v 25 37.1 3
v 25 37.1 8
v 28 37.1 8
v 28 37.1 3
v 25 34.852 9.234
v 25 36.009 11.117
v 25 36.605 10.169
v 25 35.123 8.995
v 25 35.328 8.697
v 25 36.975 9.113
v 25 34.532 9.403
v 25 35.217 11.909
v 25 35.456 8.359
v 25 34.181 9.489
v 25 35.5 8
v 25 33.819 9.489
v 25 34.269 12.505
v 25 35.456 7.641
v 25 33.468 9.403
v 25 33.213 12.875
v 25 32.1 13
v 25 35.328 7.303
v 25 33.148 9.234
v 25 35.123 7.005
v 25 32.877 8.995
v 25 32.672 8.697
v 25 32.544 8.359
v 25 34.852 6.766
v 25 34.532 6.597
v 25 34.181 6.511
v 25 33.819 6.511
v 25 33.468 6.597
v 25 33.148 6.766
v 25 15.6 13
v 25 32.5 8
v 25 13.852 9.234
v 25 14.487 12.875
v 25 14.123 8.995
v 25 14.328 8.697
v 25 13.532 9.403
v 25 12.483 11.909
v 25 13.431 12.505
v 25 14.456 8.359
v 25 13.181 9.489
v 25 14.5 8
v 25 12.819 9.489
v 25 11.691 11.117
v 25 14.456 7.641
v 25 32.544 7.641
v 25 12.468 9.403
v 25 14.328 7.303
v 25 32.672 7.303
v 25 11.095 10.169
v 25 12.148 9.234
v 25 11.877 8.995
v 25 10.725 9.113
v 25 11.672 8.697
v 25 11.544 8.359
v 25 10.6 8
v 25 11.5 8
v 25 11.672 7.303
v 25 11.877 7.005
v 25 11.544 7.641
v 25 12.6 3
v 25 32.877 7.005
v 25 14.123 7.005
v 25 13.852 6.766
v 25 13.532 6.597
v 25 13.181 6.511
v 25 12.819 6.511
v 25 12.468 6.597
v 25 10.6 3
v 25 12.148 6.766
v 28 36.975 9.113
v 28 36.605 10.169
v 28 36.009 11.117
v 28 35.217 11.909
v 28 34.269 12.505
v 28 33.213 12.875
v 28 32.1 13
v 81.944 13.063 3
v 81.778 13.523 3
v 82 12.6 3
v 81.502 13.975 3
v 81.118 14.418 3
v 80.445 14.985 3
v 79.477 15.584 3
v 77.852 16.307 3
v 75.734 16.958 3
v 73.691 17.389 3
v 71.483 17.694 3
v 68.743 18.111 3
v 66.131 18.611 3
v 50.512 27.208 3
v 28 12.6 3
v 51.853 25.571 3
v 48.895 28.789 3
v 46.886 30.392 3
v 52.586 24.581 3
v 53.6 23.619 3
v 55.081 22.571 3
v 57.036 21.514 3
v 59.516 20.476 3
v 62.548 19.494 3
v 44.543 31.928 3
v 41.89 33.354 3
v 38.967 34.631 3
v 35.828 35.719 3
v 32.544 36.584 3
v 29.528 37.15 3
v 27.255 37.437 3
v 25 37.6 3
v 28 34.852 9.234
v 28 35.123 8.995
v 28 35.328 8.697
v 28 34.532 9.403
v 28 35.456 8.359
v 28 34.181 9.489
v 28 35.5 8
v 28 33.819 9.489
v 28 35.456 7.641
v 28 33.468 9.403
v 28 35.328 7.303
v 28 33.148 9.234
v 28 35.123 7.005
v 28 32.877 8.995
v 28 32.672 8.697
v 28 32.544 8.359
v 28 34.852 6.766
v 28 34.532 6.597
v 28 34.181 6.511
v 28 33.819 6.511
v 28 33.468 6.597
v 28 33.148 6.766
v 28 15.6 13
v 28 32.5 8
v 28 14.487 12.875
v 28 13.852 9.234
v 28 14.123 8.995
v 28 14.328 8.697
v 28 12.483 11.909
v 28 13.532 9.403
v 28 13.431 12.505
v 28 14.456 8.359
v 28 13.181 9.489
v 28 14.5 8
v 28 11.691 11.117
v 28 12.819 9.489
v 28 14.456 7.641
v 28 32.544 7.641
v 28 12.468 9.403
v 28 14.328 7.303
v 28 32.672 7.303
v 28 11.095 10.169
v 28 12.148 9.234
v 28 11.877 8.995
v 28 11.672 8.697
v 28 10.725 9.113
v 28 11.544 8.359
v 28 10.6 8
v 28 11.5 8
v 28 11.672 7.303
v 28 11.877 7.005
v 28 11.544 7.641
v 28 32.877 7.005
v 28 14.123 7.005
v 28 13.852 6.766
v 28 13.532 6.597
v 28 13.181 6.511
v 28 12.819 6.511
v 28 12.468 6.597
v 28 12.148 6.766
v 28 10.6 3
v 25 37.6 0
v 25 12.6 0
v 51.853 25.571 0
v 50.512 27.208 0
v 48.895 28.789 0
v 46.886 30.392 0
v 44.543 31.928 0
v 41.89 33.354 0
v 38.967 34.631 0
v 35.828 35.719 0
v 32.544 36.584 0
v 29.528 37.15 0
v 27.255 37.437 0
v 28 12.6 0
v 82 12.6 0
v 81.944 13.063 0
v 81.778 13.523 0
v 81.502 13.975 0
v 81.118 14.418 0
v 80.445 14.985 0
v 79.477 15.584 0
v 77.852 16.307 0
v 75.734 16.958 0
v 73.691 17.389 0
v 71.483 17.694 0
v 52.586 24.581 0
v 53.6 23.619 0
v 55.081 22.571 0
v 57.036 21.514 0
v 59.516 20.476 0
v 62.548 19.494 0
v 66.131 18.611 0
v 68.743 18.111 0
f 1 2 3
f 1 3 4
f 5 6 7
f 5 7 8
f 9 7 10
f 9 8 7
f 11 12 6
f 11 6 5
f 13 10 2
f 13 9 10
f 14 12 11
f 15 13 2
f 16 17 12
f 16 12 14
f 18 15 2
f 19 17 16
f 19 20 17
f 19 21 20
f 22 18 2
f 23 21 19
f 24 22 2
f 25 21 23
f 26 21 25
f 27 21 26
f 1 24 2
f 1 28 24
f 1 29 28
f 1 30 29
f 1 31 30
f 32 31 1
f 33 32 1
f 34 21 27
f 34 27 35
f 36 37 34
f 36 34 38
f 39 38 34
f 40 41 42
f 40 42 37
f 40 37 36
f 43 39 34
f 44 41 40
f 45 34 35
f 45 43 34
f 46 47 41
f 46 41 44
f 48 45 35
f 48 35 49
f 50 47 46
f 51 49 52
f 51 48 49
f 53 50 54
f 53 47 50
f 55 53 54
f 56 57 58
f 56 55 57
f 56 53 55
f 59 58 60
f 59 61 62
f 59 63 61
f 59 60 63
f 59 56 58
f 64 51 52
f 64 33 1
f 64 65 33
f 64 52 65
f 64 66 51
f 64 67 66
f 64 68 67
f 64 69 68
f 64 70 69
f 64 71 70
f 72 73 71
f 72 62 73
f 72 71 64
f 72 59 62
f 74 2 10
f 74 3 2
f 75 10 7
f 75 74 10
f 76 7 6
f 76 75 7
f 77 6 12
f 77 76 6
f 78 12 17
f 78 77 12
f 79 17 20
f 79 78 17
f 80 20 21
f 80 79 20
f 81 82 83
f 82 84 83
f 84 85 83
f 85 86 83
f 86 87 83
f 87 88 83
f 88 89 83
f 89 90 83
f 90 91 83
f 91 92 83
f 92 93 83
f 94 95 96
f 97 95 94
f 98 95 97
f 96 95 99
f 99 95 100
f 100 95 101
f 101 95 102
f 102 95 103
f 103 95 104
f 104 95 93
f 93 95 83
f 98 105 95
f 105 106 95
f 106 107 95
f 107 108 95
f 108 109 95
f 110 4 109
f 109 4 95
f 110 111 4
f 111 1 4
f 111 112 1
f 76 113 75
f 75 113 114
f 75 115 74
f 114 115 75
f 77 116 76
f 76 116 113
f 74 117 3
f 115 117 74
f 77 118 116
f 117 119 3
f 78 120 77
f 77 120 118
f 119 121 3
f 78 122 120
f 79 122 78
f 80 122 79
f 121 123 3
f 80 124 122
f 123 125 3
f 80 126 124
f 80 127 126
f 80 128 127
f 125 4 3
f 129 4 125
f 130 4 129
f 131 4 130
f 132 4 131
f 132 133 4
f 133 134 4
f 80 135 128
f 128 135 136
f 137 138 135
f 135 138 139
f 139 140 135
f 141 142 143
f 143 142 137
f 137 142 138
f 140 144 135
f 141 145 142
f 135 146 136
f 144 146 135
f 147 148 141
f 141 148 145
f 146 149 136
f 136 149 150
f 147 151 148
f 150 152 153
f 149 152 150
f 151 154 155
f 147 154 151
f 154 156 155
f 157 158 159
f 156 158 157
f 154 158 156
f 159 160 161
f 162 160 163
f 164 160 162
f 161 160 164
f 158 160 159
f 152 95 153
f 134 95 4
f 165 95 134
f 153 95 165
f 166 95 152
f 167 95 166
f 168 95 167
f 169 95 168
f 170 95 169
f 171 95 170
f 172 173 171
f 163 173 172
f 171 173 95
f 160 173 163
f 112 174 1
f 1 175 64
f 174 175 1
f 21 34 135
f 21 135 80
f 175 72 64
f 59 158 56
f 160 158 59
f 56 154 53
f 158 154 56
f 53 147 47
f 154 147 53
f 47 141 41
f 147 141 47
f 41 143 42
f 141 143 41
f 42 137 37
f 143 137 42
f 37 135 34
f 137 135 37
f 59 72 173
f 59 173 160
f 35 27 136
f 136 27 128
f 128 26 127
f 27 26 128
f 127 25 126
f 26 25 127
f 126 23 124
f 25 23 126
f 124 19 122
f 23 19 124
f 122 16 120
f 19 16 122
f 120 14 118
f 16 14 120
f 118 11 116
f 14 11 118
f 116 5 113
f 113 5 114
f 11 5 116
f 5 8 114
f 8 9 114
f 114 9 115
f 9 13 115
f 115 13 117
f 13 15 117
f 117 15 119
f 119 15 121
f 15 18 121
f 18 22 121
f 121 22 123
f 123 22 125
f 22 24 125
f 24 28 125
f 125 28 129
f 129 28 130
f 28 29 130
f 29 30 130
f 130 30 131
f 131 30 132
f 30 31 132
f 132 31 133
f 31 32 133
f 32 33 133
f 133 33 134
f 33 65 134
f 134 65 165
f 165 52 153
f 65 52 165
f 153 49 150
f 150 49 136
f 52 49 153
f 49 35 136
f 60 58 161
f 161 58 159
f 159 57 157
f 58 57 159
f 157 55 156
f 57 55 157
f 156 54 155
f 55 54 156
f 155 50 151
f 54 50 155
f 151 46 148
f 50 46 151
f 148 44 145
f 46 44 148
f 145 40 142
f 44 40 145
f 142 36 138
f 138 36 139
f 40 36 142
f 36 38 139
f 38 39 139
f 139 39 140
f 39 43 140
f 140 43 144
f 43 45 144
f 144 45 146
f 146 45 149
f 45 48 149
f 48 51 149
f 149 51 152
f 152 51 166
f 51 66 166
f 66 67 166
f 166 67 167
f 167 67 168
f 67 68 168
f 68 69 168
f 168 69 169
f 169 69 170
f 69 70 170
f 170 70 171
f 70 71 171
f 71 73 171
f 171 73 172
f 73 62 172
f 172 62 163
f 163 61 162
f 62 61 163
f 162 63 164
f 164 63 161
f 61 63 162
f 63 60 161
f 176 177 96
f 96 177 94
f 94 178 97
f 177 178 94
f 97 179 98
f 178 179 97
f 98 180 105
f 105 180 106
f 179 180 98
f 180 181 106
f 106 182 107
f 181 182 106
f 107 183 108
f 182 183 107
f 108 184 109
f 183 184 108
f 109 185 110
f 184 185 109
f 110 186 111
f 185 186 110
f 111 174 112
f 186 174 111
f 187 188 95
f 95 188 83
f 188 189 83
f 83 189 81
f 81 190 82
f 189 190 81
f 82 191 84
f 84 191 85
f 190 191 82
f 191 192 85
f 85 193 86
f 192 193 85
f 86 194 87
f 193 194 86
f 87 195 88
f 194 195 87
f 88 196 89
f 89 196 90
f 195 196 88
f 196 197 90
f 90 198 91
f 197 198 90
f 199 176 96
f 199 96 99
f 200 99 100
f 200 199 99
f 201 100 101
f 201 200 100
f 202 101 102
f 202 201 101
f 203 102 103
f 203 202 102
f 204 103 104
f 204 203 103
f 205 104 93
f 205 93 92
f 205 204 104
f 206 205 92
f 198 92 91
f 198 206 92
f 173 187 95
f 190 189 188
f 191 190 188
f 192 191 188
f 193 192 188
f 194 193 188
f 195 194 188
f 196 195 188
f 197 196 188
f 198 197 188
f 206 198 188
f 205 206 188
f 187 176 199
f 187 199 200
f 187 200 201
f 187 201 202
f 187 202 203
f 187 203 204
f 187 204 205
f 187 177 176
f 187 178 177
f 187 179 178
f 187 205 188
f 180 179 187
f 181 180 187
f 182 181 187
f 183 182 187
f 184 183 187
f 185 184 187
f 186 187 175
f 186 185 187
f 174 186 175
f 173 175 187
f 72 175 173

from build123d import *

# Parameters (mm, degrees)
PAD_DEPTH    = 3
SKETCH001_W  = 26.5
SKETCH001_H  = 10
PAD001_DEPTH = 3
SKETCH002_R  = 1.5
POCKET_DEPTH = 57.001
PAD002_DEPTH = 3
FILLET_R     = 5


with BuildPart() as part:
    # Sketch → Pad (new body)
    with BuildSketch(Plane.XY):
        with BuildLine():
            add(Edge.make_bspline(
                [(51.853295, 25.571163), (55.204896, 19.874189), (71.483399, 17.693641)],
                knots=[0.193341, 0.193341, 0.193341, 1.192921, 1.192921, 1.192921], degree=2, weights=[1, 0.877683, 1]))
            add(Edge.make_bspline(
                [(82, 12.6), (82, 16.588456), (71.483399, 17.693641)],
                knots=[0, 0, 0, 1.290026, 1.290026, 1.290026], degree=2, weights=[1, 0.799092, 1]))
            Line((82, 12.6), (25, 12.6))
            Line((25, 12.6), (25, 37.6))
            add(Edge.make_bspline(
                [(51.853295, 25.571163), (43.781474, 36.750026), (25, 37.6)],
                knots=[0.559519, 0.559519, 0.559519, 1.875492, 1.875492, 1.875492], degree=2, weights=[1, 0.791225, 1]))
        make_face()
    extrude(amount=PAD_DEPTH)

    # Sketch001 (on Face4 of Pad) → Pad001 (join)
    with BuildSketch(Plane(origin=(25, 0, 0), x_dir=(0, -1, 0), z_dir=(-1, 0, 0))):
        with Locations((-23.85, 8)):
            Rectangle(SKETCH001_W, SKETCH001_H)
    extrude(amount=-PAD001_DEPTH)

    # Sketch002 (on Face10 of Pad001) → Pocket (cut, through all)
    with BuildSketch(Plane(origin=(25, 0, 0), x_dir=(0, -1, 0), z_dir=(-1, 0, 0))):
        with Locations((-34, 8)):
            Circle(SKETCH002_R)
        with Locations((-13, 8)):
            Circle(SKETCH002_R)
    extrude(amount=-POCKET_DEPTH, mode=Mode.SUBTRACT)

    # Sketch003 (on Face6 of Pocket) → Pad002 (join)
    with BuildSketch(Plane(origin=(25, 0, 0), x_dir=(0, -1, 0), z_dir=(-1, 0, 0))):
        Polygon((-12.6, 0), (-10.6, 3), (-12.6, 3), align=None)
    extrude(amount=-PAD002_DEPTH)

    # Fillet
    fillet_edges = [part.edges().sort_by_distance(p)[0] for p in [
        (26.5, 10.6, 13),
        (26.5, 37.1, 13),
    ]]
    fillet(fillet_edges, radius=FILLET_R)


solid = part.part
